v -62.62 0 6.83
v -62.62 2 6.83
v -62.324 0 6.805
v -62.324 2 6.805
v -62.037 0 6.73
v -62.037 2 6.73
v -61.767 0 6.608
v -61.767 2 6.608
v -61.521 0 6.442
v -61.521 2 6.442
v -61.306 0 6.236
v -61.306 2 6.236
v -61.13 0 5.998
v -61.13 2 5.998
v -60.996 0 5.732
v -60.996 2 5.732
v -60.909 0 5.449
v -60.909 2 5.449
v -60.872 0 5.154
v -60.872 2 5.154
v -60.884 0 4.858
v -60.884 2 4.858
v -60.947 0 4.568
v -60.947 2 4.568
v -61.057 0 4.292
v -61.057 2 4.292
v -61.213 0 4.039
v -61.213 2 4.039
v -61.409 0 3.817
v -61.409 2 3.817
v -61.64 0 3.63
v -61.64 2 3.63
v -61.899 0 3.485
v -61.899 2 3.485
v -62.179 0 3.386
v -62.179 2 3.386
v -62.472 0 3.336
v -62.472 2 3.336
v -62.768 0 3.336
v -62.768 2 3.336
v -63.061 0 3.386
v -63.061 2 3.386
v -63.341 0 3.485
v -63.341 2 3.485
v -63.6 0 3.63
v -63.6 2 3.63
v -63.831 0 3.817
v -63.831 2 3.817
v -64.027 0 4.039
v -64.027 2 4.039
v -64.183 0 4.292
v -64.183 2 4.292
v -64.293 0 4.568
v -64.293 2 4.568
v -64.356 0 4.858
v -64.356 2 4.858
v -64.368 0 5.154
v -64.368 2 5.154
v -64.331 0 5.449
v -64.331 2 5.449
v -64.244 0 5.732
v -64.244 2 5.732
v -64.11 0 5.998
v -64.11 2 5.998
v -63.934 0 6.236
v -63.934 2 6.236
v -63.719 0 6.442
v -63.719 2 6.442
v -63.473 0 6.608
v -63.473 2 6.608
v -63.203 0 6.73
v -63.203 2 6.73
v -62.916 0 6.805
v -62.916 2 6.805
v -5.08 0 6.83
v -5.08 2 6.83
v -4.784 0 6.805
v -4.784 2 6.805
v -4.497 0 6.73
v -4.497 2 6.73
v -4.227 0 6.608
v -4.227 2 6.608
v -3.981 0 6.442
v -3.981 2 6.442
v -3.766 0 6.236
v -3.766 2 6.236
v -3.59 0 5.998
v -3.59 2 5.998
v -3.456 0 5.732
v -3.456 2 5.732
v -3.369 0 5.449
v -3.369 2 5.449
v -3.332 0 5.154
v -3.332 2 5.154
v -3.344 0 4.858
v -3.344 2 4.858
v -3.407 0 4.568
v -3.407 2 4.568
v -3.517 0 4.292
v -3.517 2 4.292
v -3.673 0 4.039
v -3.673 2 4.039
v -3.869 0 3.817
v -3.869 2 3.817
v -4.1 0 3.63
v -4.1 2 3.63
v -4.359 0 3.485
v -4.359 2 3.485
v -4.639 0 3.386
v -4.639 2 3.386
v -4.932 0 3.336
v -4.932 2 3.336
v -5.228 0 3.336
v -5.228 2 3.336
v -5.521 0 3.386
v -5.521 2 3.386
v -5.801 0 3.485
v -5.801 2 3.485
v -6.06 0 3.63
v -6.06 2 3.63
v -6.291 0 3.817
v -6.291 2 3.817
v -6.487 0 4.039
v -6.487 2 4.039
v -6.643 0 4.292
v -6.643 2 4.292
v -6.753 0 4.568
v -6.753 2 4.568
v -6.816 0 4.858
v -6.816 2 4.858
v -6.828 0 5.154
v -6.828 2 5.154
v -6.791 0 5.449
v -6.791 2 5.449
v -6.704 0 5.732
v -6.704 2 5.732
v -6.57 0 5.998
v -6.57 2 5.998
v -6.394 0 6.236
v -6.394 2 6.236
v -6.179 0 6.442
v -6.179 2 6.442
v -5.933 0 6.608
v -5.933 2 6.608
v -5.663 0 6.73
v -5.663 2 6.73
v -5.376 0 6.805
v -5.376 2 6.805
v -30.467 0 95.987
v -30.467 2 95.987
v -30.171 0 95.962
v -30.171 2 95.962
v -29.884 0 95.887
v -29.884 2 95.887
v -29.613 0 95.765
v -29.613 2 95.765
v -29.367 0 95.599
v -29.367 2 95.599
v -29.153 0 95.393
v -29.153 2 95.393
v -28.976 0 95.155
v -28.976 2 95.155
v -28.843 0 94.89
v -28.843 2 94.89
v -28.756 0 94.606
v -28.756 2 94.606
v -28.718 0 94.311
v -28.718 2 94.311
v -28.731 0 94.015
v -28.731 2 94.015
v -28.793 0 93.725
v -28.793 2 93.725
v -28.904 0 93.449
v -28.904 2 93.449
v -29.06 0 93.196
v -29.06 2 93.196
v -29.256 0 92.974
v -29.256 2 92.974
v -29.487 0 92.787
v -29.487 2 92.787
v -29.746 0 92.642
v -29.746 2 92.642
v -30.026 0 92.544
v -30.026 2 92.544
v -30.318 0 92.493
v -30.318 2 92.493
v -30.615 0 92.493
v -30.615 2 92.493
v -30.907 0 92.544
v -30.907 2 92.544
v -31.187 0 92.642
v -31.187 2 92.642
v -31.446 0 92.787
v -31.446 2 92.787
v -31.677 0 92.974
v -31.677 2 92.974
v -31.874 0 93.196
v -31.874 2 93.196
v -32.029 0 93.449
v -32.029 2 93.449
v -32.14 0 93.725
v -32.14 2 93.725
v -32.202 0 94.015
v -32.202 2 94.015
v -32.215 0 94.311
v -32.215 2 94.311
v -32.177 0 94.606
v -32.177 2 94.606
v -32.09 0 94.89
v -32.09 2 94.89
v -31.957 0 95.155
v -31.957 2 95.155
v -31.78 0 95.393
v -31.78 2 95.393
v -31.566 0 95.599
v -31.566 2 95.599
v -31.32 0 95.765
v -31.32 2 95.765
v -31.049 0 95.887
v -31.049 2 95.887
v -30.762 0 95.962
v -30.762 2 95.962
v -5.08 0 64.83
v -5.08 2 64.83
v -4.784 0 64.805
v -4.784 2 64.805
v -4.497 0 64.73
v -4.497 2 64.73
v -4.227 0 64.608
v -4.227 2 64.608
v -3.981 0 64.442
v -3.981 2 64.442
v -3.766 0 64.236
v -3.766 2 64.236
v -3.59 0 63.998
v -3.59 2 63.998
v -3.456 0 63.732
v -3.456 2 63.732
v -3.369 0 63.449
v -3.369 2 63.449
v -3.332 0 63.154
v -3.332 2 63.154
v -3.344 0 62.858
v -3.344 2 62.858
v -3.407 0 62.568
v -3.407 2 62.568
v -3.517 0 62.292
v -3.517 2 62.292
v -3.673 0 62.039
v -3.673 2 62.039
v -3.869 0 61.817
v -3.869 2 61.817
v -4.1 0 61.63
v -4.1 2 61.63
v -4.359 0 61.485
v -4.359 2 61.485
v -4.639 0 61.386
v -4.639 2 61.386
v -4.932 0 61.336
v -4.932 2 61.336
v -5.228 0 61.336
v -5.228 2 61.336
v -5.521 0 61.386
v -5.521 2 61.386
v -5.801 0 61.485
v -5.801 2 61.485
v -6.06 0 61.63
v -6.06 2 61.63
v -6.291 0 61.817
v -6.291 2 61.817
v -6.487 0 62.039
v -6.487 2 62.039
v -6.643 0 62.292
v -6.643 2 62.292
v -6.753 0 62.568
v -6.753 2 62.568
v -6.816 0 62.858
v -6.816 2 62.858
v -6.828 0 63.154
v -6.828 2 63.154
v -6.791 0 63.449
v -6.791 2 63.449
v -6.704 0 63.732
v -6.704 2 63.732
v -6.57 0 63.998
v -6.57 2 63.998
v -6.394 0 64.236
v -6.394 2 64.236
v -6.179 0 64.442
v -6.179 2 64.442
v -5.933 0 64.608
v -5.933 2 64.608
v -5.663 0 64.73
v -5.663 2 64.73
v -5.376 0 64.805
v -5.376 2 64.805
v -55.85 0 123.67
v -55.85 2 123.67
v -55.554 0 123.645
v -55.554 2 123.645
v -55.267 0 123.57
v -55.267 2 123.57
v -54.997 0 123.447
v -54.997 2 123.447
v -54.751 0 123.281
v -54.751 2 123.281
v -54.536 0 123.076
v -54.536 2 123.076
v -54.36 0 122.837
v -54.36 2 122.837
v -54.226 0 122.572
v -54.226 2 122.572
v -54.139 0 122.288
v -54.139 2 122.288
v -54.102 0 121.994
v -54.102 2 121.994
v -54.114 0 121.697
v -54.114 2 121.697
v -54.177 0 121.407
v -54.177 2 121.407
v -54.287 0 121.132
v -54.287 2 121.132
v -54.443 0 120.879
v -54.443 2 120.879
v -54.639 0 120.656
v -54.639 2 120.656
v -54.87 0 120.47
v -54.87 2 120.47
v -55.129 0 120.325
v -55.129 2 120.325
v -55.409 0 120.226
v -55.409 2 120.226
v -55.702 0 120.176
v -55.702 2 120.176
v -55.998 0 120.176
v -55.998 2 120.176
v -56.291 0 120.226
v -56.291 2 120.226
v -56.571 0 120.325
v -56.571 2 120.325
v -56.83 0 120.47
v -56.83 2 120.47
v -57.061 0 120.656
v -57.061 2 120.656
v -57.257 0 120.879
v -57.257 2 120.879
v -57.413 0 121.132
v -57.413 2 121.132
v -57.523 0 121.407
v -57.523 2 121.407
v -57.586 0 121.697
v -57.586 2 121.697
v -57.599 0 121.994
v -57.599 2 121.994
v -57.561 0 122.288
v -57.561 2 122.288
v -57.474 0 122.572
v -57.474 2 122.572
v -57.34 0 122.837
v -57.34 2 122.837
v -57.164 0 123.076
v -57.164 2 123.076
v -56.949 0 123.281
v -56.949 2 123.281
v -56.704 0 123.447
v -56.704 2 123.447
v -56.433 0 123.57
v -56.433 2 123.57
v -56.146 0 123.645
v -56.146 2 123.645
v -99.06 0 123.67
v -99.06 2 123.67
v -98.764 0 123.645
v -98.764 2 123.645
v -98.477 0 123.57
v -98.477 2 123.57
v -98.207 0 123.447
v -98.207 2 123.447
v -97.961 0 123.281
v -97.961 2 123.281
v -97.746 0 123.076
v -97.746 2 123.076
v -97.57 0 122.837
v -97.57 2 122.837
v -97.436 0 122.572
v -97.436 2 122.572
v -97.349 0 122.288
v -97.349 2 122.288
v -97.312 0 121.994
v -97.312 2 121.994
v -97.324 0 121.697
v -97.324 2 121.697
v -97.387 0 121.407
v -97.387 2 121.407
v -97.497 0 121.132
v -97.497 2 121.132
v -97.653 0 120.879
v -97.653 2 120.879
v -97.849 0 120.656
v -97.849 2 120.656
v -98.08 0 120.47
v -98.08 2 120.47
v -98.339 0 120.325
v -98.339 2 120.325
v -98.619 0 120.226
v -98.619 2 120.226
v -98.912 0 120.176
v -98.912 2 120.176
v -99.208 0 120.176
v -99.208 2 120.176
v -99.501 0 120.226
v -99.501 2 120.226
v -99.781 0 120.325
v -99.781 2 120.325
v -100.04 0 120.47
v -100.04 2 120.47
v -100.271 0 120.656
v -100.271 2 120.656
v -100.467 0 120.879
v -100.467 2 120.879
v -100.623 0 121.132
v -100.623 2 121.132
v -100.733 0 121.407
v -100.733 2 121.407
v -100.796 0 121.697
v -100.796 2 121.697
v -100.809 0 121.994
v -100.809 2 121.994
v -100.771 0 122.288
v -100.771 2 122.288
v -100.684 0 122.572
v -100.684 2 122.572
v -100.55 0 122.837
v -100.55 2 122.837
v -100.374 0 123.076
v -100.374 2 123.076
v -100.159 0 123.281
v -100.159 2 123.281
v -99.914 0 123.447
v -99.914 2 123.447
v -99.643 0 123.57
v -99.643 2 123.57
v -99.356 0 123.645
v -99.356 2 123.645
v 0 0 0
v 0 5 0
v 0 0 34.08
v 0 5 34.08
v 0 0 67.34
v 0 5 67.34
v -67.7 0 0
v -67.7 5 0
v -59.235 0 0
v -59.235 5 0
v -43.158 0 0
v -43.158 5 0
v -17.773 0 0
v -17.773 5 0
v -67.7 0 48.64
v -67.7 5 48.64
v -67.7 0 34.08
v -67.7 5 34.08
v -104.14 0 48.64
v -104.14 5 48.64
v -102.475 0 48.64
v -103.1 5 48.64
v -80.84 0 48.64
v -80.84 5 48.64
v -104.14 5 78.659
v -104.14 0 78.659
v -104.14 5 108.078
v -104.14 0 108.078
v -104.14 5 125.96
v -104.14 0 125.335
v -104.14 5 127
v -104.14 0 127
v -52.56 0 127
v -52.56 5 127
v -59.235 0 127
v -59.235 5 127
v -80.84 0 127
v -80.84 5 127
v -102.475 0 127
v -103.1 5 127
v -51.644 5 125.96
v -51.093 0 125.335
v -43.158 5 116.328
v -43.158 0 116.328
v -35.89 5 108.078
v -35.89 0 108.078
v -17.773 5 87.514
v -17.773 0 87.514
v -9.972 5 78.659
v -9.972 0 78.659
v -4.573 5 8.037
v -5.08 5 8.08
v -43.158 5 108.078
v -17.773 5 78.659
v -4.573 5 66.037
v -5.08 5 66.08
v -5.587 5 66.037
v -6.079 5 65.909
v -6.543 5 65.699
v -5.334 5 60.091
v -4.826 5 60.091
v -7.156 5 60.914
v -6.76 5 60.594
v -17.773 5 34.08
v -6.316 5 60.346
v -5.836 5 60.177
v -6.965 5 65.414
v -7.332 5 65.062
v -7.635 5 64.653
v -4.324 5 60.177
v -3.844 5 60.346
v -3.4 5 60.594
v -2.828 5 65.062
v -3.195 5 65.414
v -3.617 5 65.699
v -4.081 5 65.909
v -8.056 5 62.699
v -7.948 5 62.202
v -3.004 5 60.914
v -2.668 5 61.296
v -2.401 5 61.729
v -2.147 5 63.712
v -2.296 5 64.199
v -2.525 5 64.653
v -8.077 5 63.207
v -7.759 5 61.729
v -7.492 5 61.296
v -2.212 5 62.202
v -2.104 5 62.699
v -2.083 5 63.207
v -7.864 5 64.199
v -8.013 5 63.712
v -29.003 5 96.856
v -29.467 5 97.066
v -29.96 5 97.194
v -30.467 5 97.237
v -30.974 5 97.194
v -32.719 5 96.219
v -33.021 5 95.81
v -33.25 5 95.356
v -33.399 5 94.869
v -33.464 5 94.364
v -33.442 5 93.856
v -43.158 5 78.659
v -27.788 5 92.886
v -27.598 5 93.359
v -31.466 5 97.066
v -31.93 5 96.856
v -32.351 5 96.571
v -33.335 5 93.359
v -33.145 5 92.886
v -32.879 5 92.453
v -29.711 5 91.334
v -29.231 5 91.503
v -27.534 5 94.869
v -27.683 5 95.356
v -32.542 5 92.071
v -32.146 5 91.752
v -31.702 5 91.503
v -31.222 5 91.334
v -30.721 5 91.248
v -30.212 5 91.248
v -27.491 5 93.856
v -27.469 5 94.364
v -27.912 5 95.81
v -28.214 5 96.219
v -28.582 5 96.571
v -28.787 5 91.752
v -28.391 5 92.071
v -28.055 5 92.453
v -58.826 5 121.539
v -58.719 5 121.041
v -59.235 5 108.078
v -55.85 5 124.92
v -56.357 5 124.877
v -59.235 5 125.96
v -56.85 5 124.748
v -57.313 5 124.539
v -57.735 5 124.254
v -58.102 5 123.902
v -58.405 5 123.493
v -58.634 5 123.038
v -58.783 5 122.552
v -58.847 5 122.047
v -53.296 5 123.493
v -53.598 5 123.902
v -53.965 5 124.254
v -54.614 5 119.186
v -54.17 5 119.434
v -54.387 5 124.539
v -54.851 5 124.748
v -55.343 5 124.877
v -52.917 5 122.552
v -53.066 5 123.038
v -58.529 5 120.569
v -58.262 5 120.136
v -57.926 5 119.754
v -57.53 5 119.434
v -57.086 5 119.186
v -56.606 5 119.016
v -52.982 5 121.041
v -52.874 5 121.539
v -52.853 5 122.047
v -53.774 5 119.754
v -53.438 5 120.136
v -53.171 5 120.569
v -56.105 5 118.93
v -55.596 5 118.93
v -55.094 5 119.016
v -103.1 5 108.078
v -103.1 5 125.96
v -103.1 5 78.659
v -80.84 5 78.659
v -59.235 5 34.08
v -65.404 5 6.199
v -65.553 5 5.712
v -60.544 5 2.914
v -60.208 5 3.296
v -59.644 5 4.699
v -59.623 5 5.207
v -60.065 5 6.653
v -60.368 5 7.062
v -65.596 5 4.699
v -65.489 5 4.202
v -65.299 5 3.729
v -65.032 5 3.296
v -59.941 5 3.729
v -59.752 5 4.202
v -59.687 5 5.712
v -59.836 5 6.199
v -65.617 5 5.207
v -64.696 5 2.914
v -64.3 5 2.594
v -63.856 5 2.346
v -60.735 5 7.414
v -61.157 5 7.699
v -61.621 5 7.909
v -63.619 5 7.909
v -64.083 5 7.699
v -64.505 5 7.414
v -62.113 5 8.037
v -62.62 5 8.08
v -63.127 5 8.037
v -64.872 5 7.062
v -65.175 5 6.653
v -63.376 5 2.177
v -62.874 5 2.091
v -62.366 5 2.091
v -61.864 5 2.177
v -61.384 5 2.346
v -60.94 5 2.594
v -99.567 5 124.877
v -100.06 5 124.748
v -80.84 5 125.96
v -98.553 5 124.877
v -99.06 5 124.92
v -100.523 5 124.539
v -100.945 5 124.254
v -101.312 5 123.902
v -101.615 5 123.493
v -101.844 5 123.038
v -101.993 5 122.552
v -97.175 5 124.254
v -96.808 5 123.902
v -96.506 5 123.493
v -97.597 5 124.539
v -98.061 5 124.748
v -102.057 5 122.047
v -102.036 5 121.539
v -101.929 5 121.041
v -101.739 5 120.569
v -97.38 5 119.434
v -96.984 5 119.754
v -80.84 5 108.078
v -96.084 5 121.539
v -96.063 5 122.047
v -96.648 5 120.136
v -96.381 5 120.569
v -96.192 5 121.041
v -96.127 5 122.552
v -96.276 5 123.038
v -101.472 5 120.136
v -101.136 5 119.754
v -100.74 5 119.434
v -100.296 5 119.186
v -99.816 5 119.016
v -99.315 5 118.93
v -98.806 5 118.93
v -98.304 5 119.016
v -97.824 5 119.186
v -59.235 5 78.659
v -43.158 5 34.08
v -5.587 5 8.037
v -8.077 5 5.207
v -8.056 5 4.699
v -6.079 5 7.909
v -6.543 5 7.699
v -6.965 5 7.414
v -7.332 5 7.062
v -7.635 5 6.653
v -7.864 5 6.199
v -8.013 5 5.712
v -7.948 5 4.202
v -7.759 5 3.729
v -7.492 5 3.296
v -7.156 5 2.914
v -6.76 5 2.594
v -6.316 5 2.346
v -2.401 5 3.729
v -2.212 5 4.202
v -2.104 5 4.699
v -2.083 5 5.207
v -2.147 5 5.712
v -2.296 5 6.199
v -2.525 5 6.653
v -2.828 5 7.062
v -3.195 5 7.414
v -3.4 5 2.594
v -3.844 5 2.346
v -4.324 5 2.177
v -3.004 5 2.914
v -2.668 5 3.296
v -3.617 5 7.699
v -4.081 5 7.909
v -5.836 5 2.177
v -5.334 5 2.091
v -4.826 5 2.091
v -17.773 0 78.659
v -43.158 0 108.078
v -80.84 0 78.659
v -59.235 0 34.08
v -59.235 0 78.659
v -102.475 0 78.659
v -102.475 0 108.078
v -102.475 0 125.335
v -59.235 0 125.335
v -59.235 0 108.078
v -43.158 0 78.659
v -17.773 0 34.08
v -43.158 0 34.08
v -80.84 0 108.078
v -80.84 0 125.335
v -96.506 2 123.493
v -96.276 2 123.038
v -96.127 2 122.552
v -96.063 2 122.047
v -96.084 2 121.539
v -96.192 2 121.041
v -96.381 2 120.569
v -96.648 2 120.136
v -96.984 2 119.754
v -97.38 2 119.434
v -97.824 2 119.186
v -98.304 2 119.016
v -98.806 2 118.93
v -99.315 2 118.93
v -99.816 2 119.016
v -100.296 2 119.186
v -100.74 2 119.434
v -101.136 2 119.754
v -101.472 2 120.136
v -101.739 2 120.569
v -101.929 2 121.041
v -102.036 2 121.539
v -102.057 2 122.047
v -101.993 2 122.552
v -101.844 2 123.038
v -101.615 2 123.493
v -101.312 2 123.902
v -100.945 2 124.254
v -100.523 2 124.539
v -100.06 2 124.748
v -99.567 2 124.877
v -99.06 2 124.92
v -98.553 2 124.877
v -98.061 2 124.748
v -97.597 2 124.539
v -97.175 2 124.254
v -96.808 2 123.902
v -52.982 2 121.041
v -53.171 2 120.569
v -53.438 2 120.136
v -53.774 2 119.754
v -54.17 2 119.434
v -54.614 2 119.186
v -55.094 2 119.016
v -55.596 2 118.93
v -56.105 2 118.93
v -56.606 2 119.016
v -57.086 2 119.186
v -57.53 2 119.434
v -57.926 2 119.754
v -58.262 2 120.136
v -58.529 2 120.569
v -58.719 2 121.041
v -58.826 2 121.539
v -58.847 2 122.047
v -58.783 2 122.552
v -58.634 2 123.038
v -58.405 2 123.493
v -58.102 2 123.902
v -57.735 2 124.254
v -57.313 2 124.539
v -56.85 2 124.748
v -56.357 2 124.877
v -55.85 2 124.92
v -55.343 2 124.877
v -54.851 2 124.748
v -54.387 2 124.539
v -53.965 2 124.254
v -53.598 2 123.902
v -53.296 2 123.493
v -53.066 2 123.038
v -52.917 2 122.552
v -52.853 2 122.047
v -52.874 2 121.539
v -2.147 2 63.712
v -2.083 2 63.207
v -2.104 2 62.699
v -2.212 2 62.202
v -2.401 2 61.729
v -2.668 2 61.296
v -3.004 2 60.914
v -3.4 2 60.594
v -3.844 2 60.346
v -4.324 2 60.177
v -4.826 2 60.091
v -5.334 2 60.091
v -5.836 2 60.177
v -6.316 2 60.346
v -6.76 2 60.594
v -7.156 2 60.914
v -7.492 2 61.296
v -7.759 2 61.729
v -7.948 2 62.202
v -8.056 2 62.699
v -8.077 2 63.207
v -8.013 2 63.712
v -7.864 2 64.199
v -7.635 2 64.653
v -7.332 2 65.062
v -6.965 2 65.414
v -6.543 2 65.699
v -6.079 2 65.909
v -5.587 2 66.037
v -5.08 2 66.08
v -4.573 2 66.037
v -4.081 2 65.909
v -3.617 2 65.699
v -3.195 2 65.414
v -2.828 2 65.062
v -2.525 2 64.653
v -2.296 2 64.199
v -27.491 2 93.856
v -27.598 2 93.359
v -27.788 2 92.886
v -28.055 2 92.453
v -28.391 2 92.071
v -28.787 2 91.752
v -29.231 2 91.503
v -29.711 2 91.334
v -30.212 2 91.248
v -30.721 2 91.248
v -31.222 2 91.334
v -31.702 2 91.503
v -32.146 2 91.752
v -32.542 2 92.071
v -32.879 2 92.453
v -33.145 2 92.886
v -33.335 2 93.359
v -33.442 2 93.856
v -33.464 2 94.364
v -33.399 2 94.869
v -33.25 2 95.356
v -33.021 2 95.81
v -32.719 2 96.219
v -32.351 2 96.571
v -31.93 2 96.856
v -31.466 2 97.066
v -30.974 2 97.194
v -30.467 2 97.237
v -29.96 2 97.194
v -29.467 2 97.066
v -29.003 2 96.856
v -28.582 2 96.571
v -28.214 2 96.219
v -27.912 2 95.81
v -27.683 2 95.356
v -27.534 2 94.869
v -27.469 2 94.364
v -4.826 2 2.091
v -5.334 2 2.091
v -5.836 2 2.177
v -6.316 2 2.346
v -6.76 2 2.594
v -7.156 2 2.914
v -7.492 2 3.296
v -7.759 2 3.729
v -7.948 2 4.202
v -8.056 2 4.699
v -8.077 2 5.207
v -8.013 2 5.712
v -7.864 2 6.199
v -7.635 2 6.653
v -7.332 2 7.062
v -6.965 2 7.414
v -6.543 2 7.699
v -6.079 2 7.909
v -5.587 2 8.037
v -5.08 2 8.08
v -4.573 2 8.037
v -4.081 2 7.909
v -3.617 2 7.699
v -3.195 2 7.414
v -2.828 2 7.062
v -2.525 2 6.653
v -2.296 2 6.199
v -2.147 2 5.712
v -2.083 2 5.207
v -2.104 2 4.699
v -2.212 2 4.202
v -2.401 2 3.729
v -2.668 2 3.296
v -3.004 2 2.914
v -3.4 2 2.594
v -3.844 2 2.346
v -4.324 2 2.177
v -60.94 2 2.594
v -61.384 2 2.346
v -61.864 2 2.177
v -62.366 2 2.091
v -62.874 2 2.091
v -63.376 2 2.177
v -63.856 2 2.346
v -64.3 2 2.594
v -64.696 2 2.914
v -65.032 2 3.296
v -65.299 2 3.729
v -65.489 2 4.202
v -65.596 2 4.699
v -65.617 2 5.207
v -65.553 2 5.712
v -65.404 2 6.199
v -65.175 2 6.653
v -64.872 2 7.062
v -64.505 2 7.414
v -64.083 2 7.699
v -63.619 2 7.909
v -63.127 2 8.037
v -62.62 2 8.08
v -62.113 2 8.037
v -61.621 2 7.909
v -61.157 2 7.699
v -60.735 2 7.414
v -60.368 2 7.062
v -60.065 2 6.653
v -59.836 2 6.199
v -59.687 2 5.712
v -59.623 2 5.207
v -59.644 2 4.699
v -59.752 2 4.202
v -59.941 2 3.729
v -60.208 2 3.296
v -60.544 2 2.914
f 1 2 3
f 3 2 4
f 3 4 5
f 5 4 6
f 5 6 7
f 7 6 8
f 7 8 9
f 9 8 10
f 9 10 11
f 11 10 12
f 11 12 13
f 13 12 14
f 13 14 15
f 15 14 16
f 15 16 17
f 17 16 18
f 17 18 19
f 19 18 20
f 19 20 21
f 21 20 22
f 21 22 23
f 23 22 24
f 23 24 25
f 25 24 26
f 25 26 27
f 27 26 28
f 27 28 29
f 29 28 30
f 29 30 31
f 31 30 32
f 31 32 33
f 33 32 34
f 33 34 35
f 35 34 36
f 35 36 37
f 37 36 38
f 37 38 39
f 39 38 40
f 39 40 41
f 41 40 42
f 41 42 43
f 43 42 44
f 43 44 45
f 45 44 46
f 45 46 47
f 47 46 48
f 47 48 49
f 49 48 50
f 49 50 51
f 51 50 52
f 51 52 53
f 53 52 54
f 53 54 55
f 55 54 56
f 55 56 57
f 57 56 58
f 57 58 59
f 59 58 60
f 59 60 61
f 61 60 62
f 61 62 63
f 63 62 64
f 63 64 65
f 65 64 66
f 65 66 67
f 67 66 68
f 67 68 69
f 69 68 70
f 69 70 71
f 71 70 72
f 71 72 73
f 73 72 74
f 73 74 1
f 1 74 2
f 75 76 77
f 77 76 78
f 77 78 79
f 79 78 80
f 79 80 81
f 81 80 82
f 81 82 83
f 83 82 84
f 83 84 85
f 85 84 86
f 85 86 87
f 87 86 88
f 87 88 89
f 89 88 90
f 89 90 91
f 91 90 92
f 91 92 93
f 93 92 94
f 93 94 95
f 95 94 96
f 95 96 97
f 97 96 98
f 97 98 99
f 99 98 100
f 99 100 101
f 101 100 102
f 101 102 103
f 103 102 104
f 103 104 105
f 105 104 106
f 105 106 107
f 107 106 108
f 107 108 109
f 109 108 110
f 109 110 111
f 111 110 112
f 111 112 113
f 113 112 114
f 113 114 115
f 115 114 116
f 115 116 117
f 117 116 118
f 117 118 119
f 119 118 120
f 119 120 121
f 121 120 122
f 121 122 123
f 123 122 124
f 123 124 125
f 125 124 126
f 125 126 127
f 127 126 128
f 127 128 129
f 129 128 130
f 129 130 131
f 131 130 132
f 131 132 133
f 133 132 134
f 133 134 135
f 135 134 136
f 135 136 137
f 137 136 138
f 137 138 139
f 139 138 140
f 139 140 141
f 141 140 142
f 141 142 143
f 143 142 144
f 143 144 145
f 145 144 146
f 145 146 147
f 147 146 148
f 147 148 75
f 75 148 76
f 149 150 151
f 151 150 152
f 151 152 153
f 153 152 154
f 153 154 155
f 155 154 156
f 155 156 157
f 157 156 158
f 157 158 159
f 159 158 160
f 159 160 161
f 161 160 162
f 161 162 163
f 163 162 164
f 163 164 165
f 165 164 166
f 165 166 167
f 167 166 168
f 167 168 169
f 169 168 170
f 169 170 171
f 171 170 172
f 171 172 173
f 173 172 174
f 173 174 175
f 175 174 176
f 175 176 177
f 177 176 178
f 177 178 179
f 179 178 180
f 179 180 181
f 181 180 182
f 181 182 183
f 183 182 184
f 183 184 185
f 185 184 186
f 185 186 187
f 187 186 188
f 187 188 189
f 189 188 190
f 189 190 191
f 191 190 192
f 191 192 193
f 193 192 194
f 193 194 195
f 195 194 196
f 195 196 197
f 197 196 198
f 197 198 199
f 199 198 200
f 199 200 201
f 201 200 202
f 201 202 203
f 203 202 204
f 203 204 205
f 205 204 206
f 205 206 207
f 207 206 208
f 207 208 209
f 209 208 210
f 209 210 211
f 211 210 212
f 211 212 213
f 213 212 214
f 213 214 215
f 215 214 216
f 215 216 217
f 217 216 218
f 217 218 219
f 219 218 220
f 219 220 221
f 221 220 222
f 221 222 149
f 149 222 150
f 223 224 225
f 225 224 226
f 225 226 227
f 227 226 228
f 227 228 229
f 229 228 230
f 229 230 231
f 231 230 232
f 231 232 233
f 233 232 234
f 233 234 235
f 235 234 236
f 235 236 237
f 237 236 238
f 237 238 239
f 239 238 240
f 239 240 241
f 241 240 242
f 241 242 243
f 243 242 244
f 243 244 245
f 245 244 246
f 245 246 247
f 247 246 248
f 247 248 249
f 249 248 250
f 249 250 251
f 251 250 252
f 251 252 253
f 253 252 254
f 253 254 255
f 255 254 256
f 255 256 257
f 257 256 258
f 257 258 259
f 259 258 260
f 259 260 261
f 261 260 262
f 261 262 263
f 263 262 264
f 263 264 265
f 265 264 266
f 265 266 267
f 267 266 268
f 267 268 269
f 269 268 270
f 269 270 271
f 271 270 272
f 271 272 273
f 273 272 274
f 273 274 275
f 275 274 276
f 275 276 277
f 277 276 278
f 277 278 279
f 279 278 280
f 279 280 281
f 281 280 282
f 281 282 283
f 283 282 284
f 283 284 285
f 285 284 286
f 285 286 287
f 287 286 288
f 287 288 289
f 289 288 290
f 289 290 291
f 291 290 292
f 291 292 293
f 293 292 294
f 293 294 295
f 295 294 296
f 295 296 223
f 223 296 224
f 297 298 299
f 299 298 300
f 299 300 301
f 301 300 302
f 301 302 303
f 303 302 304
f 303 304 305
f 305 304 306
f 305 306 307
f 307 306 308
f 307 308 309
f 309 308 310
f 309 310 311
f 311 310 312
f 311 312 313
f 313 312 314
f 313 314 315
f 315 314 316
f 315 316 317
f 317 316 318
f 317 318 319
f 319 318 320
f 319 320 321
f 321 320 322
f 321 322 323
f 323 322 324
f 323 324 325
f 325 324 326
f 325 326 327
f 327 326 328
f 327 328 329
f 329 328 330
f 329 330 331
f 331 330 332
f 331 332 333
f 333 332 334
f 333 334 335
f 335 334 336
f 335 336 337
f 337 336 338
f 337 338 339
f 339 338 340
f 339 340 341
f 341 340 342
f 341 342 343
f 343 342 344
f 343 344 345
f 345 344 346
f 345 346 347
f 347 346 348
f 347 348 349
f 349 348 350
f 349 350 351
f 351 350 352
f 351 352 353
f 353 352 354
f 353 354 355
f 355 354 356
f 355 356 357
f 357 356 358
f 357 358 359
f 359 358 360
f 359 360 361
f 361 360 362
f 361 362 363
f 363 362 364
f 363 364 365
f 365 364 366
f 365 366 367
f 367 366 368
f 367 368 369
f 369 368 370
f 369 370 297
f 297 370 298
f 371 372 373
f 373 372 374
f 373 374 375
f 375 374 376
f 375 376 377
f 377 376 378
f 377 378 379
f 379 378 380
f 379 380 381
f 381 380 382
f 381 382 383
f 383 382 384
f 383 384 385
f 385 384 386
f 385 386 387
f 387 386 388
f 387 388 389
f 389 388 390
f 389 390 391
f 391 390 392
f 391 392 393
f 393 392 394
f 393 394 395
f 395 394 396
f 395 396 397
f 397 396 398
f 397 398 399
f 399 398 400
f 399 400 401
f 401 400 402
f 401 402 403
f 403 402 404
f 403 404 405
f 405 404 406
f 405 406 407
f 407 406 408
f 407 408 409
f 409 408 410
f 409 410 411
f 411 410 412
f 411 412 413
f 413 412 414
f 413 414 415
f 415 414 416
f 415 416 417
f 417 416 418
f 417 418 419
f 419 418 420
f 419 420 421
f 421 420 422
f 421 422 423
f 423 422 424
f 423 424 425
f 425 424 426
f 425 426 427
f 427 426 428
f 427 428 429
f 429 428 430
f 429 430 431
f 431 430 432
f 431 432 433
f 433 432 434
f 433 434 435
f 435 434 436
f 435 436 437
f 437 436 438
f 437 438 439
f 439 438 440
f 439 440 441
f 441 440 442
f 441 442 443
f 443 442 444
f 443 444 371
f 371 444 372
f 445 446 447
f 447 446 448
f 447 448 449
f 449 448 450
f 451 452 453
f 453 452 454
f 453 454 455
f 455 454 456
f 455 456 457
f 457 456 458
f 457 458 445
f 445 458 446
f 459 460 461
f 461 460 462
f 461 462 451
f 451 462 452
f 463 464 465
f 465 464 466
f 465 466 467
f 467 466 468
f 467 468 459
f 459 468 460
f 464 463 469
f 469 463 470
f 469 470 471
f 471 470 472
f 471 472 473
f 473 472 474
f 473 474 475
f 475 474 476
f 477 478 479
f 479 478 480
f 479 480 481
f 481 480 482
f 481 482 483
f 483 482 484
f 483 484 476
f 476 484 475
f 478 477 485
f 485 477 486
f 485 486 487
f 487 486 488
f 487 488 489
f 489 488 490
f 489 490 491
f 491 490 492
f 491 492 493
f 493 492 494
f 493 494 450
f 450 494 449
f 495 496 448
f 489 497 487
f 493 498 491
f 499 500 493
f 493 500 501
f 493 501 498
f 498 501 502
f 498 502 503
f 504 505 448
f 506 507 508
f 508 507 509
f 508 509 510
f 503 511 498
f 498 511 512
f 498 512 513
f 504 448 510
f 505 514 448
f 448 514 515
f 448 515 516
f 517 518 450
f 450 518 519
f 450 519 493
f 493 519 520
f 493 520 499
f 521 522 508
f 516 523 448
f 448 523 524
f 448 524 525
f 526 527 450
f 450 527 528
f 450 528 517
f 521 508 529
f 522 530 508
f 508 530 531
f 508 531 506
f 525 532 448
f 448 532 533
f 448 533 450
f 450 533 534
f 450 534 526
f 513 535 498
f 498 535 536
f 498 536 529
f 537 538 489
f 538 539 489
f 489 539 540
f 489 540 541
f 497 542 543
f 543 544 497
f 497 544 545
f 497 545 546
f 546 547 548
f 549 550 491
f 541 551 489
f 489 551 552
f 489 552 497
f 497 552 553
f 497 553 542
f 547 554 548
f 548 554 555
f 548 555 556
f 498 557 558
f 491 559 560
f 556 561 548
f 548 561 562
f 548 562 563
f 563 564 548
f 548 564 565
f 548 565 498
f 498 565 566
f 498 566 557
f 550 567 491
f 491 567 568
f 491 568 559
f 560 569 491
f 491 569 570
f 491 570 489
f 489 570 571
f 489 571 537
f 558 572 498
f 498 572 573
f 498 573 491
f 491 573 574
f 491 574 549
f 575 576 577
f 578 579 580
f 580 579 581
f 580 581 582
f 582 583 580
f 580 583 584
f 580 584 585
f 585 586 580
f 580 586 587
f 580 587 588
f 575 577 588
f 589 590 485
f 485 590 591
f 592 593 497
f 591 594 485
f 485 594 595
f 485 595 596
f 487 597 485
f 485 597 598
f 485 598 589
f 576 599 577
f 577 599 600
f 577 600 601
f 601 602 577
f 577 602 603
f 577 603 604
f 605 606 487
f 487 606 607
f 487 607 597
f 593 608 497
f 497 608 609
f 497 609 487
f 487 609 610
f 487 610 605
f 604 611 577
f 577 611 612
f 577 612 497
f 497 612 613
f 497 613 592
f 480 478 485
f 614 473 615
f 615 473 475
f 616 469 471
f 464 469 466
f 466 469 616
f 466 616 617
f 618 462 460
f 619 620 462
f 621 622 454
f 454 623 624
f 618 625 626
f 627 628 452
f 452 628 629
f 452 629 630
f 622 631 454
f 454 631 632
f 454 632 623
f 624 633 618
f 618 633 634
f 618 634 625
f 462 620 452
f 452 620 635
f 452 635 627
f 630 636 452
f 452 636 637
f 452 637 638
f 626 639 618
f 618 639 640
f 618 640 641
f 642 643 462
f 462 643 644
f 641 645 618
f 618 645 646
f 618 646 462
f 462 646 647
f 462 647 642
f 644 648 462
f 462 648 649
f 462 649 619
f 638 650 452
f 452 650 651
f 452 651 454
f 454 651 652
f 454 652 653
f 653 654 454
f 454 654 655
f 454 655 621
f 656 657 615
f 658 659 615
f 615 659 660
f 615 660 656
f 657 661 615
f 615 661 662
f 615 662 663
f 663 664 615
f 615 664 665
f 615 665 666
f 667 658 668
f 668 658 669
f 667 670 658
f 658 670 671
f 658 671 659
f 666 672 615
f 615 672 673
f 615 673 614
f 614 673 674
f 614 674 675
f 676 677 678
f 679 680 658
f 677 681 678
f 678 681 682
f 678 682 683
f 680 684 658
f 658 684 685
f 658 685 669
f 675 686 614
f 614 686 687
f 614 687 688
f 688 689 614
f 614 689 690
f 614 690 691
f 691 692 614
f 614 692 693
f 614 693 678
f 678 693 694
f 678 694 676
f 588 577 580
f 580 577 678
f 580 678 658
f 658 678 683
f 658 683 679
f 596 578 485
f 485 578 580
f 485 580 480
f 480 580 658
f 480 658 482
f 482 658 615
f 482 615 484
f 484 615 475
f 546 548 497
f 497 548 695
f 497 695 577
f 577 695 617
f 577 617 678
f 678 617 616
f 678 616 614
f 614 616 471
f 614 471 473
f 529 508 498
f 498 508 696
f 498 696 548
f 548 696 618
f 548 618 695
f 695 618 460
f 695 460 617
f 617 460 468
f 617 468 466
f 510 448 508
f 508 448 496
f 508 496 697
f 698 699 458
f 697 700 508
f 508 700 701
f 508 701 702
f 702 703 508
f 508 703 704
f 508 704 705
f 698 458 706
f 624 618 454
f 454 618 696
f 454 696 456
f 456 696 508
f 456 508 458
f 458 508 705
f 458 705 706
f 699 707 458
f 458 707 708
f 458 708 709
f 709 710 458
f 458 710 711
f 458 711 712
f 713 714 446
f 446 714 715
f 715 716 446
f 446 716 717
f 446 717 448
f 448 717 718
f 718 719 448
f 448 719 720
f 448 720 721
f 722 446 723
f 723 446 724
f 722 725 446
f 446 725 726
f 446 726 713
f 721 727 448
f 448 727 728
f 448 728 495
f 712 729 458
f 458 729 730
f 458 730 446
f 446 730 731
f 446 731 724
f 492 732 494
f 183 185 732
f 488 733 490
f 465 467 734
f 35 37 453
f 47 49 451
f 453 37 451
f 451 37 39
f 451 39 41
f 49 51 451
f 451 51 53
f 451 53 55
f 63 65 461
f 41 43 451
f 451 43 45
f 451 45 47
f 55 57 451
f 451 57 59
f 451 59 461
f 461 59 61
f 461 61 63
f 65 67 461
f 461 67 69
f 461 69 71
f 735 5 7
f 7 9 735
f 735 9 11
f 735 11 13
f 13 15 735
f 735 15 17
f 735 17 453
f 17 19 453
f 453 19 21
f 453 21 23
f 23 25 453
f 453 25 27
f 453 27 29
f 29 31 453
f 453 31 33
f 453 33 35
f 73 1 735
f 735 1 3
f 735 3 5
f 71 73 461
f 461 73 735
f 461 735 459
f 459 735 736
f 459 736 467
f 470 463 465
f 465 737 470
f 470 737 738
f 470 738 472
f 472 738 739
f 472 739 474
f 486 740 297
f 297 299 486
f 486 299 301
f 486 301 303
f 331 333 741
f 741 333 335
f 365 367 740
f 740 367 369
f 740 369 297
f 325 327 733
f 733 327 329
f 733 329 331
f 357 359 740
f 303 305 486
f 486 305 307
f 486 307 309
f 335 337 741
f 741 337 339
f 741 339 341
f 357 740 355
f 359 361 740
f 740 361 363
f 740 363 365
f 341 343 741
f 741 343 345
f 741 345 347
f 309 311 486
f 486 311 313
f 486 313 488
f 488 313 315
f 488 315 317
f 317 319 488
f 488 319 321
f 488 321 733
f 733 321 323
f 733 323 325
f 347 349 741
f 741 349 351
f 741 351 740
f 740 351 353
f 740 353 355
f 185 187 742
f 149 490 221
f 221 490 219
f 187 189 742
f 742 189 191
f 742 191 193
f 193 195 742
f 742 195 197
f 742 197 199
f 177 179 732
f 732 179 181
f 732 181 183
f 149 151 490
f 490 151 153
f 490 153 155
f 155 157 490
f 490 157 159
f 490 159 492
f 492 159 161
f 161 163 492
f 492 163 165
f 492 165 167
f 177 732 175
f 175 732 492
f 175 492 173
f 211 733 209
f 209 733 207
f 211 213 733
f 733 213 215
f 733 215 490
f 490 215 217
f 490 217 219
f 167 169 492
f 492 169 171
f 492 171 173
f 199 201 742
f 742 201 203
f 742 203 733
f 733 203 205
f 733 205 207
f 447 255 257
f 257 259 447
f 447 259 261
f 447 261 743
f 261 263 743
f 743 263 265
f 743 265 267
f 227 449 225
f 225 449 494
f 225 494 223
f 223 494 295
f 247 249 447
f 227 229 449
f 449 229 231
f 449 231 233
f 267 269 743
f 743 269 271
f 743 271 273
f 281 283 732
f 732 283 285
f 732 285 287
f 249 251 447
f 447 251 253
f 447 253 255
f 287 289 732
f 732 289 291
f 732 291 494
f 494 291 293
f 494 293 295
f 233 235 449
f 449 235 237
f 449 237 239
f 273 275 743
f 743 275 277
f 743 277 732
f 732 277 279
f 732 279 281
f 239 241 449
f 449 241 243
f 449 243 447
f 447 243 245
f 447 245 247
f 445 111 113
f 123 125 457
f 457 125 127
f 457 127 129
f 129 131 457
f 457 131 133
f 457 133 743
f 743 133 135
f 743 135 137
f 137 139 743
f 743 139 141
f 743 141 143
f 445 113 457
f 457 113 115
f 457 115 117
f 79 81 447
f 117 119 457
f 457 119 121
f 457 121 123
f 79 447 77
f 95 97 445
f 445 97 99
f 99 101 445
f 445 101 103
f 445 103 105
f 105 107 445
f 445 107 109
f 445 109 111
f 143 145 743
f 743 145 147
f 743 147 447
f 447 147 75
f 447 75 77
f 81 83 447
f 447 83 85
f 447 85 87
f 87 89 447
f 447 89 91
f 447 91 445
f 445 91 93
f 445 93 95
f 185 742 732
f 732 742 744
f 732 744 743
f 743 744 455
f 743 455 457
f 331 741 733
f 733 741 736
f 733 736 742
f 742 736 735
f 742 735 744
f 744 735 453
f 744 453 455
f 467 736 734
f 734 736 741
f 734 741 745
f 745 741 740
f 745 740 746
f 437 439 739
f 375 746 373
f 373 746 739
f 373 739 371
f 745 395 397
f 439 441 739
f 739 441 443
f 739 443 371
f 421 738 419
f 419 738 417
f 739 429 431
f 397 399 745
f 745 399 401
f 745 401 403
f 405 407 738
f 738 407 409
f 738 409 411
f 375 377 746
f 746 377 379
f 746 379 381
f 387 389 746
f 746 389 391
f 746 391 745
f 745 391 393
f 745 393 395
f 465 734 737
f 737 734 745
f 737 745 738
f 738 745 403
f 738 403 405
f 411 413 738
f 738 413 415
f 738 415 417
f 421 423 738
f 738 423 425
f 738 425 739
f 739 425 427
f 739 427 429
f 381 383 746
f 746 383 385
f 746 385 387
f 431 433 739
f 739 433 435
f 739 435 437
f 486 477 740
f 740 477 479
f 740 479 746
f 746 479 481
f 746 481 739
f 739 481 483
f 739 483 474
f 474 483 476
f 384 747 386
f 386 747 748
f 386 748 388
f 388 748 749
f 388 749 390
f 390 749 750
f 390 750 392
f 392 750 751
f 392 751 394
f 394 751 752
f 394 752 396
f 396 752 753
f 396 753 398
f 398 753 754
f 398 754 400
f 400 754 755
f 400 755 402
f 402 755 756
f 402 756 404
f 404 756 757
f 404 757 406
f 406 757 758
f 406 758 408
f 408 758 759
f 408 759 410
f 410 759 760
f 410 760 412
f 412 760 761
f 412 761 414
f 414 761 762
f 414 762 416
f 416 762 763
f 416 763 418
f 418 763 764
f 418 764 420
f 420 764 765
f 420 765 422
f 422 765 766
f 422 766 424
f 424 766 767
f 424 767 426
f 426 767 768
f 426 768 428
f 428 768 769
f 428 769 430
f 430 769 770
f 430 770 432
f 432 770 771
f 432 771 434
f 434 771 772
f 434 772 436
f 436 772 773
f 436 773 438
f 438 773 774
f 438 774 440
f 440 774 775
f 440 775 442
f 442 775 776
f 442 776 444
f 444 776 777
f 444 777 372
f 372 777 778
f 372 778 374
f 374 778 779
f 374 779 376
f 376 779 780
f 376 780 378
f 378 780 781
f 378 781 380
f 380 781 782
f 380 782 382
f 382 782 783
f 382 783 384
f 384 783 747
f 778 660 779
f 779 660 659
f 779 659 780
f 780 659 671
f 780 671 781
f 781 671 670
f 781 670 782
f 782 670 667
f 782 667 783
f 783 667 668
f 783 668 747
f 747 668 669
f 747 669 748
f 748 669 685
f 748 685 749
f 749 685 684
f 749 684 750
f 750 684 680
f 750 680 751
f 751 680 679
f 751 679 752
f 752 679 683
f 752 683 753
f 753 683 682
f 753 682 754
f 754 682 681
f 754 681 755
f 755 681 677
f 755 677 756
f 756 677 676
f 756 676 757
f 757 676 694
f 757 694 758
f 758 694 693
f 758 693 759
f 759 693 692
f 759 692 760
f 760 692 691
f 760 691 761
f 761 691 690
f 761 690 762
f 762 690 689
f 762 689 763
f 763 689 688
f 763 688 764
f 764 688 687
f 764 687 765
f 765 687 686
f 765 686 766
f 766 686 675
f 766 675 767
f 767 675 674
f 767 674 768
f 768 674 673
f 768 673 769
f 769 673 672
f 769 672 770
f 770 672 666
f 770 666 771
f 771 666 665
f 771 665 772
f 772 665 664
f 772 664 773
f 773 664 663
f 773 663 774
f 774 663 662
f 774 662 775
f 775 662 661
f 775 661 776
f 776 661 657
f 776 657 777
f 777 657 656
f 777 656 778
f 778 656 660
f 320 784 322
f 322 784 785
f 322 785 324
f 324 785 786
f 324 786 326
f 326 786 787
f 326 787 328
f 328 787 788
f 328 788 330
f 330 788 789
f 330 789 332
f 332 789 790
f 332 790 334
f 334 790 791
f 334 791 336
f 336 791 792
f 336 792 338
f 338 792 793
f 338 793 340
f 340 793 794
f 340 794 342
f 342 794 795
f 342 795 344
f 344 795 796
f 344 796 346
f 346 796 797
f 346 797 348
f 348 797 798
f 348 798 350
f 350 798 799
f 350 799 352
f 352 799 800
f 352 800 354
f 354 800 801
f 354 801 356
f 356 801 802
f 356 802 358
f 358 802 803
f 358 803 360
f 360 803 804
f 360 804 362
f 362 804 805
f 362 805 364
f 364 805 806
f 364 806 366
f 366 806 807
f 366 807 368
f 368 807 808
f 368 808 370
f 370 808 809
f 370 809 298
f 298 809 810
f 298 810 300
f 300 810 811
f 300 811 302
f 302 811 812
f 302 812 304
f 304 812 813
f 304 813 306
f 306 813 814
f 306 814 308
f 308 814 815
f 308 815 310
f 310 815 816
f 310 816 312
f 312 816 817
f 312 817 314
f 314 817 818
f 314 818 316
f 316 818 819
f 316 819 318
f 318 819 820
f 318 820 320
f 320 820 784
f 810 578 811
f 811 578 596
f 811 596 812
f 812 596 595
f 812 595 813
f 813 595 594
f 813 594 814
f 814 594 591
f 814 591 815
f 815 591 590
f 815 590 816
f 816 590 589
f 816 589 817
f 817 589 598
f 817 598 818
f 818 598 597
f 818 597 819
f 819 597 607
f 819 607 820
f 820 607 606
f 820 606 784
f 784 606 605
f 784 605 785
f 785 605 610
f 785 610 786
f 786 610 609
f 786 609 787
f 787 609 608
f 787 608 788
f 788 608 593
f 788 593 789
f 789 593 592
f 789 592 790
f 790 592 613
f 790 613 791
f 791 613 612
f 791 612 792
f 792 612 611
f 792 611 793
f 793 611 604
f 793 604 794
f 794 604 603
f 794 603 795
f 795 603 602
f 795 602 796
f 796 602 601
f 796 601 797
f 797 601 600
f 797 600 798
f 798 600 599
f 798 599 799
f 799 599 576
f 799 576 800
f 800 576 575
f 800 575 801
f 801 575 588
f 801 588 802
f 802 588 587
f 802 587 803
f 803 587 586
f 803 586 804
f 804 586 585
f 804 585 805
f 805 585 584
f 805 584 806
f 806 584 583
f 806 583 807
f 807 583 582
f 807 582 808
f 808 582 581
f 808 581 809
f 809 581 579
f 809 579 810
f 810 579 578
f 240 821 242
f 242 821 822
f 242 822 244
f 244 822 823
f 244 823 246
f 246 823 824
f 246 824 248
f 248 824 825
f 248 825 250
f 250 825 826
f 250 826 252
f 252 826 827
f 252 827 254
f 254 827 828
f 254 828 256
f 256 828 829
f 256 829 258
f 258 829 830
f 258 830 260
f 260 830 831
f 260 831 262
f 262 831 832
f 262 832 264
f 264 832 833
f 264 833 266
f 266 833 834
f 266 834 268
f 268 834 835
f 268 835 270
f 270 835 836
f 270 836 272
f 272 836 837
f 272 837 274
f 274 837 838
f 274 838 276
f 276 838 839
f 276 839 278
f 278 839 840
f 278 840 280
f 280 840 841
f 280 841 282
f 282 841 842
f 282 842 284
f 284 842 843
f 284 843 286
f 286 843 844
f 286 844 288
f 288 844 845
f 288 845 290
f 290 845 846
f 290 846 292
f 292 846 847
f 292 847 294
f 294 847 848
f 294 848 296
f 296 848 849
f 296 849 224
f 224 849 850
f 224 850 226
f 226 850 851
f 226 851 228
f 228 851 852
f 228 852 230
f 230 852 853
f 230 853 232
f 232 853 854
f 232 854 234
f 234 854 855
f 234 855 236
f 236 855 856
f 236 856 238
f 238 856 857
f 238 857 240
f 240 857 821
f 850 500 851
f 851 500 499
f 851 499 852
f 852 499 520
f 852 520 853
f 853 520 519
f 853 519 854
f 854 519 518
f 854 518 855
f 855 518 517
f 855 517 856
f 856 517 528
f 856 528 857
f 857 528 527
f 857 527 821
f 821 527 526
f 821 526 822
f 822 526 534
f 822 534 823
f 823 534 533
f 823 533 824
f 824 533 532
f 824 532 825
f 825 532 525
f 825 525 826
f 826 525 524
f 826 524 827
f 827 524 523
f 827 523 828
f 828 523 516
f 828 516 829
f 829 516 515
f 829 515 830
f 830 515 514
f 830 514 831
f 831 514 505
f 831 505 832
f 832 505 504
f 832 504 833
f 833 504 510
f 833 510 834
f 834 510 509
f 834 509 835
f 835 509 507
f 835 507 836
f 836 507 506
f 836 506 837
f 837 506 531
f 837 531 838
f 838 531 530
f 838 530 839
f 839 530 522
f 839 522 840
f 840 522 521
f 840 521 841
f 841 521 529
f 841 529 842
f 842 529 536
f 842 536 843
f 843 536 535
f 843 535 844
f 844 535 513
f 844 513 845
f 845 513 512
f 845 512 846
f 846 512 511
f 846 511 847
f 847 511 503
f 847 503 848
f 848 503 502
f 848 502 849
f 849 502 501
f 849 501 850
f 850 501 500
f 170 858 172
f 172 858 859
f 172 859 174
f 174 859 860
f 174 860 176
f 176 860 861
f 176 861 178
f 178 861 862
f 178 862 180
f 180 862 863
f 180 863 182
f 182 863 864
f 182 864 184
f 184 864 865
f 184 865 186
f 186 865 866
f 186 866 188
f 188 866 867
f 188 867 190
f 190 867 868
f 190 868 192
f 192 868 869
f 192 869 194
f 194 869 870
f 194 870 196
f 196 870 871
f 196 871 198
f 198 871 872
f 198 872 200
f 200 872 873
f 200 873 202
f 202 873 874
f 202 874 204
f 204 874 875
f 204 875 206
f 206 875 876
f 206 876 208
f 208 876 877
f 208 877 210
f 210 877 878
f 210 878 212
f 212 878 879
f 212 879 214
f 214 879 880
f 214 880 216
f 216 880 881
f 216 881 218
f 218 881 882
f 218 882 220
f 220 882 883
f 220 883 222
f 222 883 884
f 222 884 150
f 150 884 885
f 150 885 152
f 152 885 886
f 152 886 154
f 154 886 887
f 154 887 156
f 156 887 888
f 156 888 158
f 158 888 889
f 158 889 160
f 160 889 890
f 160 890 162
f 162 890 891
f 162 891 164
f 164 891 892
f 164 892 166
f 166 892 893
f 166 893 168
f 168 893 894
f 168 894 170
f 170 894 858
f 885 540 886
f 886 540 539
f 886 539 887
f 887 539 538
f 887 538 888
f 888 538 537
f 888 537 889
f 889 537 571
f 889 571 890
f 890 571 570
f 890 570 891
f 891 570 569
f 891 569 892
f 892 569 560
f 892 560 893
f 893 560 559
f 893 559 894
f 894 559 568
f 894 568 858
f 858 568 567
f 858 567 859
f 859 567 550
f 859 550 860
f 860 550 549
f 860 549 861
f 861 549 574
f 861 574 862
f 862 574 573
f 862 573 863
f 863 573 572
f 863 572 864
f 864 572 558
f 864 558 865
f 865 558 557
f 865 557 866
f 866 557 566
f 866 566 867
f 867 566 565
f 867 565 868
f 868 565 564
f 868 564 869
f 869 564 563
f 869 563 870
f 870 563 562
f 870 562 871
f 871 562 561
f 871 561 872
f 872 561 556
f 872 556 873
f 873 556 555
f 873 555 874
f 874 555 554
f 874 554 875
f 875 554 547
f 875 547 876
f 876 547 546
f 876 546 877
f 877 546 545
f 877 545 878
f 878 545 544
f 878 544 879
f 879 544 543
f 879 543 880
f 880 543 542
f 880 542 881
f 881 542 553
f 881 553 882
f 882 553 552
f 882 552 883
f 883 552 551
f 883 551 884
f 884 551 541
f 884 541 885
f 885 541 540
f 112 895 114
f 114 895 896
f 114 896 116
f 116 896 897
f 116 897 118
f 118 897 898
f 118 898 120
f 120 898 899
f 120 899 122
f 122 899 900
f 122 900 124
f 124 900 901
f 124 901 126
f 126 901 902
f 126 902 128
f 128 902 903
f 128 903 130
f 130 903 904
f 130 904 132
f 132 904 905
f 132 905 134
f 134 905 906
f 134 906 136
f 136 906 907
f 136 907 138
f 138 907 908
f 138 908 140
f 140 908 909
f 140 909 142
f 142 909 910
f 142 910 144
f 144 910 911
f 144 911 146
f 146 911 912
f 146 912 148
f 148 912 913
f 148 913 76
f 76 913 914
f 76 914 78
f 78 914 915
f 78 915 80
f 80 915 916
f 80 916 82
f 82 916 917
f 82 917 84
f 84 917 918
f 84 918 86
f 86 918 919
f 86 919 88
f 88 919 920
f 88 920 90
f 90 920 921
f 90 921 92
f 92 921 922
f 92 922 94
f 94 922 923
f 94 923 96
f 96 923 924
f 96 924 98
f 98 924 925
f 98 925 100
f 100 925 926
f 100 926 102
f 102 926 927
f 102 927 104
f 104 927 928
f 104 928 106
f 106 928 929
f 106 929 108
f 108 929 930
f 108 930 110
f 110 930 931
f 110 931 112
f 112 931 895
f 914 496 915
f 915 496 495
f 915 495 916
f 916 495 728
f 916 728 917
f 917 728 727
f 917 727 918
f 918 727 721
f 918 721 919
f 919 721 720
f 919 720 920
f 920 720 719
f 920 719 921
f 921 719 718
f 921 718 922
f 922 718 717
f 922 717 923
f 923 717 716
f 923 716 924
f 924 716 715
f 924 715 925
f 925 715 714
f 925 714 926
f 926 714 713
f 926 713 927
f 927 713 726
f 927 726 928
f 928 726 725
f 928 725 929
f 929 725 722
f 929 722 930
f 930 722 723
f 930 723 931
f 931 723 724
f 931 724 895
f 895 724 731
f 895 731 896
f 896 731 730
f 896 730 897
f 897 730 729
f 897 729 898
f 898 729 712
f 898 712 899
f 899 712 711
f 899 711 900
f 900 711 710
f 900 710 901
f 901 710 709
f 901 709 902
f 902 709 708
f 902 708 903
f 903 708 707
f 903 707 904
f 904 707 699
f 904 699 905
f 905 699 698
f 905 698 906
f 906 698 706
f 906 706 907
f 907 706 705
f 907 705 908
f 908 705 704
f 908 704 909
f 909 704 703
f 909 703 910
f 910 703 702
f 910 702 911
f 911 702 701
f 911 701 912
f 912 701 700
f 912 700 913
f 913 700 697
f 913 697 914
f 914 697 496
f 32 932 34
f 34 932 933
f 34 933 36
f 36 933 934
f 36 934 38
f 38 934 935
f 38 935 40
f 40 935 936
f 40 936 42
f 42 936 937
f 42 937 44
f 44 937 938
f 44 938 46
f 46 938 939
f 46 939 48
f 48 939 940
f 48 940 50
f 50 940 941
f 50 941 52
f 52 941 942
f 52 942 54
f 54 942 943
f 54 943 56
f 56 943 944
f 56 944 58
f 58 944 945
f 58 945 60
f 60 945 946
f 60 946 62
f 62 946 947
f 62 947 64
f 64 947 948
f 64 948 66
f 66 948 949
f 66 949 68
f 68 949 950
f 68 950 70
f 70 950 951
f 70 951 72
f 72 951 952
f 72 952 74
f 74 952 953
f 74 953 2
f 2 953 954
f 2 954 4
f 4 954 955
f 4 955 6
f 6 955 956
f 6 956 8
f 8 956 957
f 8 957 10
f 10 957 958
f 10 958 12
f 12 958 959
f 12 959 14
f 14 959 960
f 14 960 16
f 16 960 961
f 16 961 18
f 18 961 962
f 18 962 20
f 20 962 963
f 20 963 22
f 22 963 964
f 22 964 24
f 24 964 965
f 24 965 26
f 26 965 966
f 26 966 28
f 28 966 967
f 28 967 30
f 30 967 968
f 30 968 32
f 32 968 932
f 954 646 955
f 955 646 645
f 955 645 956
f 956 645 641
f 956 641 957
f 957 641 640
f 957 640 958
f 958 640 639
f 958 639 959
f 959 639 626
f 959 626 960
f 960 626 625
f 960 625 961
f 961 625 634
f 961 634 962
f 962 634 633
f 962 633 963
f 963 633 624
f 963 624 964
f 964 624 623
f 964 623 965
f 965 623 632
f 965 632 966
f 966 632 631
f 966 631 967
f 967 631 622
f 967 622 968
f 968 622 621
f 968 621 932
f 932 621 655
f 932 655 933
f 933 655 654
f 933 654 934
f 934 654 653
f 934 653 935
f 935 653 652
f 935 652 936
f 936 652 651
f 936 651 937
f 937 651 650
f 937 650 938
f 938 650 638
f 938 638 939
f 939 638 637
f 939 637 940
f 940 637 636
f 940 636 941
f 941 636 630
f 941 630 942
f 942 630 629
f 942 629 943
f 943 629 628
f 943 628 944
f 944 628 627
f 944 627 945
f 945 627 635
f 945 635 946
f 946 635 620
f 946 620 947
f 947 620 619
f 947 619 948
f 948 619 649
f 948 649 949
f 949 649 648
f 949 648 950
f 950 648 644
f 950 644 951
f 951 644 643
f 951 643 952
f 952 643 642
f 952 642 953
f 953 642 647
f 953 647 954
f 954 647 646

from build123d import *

# Parameters (mm, degrees)
BOSS_EXTRUDE1_DEPTH   = 5
F_4_0MM_DOWEL_HOLE1_D = 3.5
SKETCH4_R             = 3
CUT_EXTRUDE1_DEPTH    = 3


with BuildPart() as part:
    # Sketch1 → Boss-Extrude1 (new body)
    with BuildSketch(Plane(origin=(0, 0, 0), x_dir=(1, 0, 0), z_dir=(0, 1, 0))):
        Polygon((0, 0), (-67.7, 0), (-67.7, -48.64), (-104.14, -48.64), (-104.140084457, -126.999681711), (-52.560084457, -126.999681711), (0, -67.34), align=None)
    extrude(amount=BOSS_EXTRUDE1_DEPTH)

    # Ø4.0mm Dowel Hole1 (through all)
    with Locations(Plane(origin=(-99.060084457, 5, 121.919681711), x_dir=(0, 0, 1), z_dir=(0, 1, 0))):
        with Locations((0, 0), (0, 43.21), (-58.839681711, 93.980084457), (-27.682634748, 68.593581655), (-116.839681711, 93.980084457), (-116.839681711, 36.440084457)):
            Hole(F_4_0MM_DOWEL_HOLE1_D / 2)

    # Sketch4 → Cut-Extrude1 (cut)
    with BuildSketch(Plane(origin=(0, 5, 0), x_dir=(1, 0, 0), z_dir=(0, 1, 0))):
        with Locations(Location((-99.060084457, -121.919681711, 0), (0, 0, 270))):
            Circle(SKETCH4_R)
        with Locations(Location((-55.850084457, -121.919681711, 0), (0, 0, 270))):
            Circle(SKETCH4_R)
        with Locations(Location((-30.466502802, -94.237046963, 0), (0, 0, 270))):
            Circle(SKETCH4_R)
        with Locations(Location((-5.08, -63.08, 0), (0, 0, 270))):
            Circle(SKETCH4_R)
        with Locations(Location((-5.08, -5.08, 0), (0, 0, 270))):
            Circle(SKETCH4_R)
        with Locations(Location((-62.62, -5.08, 0), (0, 0, 270))):
            Circle(SKETCH4_R)
    extrude(amount=-CUT_EXTRUDE1_DEPTH, mode=Mode.SUBTRACT)


solid = part.part
